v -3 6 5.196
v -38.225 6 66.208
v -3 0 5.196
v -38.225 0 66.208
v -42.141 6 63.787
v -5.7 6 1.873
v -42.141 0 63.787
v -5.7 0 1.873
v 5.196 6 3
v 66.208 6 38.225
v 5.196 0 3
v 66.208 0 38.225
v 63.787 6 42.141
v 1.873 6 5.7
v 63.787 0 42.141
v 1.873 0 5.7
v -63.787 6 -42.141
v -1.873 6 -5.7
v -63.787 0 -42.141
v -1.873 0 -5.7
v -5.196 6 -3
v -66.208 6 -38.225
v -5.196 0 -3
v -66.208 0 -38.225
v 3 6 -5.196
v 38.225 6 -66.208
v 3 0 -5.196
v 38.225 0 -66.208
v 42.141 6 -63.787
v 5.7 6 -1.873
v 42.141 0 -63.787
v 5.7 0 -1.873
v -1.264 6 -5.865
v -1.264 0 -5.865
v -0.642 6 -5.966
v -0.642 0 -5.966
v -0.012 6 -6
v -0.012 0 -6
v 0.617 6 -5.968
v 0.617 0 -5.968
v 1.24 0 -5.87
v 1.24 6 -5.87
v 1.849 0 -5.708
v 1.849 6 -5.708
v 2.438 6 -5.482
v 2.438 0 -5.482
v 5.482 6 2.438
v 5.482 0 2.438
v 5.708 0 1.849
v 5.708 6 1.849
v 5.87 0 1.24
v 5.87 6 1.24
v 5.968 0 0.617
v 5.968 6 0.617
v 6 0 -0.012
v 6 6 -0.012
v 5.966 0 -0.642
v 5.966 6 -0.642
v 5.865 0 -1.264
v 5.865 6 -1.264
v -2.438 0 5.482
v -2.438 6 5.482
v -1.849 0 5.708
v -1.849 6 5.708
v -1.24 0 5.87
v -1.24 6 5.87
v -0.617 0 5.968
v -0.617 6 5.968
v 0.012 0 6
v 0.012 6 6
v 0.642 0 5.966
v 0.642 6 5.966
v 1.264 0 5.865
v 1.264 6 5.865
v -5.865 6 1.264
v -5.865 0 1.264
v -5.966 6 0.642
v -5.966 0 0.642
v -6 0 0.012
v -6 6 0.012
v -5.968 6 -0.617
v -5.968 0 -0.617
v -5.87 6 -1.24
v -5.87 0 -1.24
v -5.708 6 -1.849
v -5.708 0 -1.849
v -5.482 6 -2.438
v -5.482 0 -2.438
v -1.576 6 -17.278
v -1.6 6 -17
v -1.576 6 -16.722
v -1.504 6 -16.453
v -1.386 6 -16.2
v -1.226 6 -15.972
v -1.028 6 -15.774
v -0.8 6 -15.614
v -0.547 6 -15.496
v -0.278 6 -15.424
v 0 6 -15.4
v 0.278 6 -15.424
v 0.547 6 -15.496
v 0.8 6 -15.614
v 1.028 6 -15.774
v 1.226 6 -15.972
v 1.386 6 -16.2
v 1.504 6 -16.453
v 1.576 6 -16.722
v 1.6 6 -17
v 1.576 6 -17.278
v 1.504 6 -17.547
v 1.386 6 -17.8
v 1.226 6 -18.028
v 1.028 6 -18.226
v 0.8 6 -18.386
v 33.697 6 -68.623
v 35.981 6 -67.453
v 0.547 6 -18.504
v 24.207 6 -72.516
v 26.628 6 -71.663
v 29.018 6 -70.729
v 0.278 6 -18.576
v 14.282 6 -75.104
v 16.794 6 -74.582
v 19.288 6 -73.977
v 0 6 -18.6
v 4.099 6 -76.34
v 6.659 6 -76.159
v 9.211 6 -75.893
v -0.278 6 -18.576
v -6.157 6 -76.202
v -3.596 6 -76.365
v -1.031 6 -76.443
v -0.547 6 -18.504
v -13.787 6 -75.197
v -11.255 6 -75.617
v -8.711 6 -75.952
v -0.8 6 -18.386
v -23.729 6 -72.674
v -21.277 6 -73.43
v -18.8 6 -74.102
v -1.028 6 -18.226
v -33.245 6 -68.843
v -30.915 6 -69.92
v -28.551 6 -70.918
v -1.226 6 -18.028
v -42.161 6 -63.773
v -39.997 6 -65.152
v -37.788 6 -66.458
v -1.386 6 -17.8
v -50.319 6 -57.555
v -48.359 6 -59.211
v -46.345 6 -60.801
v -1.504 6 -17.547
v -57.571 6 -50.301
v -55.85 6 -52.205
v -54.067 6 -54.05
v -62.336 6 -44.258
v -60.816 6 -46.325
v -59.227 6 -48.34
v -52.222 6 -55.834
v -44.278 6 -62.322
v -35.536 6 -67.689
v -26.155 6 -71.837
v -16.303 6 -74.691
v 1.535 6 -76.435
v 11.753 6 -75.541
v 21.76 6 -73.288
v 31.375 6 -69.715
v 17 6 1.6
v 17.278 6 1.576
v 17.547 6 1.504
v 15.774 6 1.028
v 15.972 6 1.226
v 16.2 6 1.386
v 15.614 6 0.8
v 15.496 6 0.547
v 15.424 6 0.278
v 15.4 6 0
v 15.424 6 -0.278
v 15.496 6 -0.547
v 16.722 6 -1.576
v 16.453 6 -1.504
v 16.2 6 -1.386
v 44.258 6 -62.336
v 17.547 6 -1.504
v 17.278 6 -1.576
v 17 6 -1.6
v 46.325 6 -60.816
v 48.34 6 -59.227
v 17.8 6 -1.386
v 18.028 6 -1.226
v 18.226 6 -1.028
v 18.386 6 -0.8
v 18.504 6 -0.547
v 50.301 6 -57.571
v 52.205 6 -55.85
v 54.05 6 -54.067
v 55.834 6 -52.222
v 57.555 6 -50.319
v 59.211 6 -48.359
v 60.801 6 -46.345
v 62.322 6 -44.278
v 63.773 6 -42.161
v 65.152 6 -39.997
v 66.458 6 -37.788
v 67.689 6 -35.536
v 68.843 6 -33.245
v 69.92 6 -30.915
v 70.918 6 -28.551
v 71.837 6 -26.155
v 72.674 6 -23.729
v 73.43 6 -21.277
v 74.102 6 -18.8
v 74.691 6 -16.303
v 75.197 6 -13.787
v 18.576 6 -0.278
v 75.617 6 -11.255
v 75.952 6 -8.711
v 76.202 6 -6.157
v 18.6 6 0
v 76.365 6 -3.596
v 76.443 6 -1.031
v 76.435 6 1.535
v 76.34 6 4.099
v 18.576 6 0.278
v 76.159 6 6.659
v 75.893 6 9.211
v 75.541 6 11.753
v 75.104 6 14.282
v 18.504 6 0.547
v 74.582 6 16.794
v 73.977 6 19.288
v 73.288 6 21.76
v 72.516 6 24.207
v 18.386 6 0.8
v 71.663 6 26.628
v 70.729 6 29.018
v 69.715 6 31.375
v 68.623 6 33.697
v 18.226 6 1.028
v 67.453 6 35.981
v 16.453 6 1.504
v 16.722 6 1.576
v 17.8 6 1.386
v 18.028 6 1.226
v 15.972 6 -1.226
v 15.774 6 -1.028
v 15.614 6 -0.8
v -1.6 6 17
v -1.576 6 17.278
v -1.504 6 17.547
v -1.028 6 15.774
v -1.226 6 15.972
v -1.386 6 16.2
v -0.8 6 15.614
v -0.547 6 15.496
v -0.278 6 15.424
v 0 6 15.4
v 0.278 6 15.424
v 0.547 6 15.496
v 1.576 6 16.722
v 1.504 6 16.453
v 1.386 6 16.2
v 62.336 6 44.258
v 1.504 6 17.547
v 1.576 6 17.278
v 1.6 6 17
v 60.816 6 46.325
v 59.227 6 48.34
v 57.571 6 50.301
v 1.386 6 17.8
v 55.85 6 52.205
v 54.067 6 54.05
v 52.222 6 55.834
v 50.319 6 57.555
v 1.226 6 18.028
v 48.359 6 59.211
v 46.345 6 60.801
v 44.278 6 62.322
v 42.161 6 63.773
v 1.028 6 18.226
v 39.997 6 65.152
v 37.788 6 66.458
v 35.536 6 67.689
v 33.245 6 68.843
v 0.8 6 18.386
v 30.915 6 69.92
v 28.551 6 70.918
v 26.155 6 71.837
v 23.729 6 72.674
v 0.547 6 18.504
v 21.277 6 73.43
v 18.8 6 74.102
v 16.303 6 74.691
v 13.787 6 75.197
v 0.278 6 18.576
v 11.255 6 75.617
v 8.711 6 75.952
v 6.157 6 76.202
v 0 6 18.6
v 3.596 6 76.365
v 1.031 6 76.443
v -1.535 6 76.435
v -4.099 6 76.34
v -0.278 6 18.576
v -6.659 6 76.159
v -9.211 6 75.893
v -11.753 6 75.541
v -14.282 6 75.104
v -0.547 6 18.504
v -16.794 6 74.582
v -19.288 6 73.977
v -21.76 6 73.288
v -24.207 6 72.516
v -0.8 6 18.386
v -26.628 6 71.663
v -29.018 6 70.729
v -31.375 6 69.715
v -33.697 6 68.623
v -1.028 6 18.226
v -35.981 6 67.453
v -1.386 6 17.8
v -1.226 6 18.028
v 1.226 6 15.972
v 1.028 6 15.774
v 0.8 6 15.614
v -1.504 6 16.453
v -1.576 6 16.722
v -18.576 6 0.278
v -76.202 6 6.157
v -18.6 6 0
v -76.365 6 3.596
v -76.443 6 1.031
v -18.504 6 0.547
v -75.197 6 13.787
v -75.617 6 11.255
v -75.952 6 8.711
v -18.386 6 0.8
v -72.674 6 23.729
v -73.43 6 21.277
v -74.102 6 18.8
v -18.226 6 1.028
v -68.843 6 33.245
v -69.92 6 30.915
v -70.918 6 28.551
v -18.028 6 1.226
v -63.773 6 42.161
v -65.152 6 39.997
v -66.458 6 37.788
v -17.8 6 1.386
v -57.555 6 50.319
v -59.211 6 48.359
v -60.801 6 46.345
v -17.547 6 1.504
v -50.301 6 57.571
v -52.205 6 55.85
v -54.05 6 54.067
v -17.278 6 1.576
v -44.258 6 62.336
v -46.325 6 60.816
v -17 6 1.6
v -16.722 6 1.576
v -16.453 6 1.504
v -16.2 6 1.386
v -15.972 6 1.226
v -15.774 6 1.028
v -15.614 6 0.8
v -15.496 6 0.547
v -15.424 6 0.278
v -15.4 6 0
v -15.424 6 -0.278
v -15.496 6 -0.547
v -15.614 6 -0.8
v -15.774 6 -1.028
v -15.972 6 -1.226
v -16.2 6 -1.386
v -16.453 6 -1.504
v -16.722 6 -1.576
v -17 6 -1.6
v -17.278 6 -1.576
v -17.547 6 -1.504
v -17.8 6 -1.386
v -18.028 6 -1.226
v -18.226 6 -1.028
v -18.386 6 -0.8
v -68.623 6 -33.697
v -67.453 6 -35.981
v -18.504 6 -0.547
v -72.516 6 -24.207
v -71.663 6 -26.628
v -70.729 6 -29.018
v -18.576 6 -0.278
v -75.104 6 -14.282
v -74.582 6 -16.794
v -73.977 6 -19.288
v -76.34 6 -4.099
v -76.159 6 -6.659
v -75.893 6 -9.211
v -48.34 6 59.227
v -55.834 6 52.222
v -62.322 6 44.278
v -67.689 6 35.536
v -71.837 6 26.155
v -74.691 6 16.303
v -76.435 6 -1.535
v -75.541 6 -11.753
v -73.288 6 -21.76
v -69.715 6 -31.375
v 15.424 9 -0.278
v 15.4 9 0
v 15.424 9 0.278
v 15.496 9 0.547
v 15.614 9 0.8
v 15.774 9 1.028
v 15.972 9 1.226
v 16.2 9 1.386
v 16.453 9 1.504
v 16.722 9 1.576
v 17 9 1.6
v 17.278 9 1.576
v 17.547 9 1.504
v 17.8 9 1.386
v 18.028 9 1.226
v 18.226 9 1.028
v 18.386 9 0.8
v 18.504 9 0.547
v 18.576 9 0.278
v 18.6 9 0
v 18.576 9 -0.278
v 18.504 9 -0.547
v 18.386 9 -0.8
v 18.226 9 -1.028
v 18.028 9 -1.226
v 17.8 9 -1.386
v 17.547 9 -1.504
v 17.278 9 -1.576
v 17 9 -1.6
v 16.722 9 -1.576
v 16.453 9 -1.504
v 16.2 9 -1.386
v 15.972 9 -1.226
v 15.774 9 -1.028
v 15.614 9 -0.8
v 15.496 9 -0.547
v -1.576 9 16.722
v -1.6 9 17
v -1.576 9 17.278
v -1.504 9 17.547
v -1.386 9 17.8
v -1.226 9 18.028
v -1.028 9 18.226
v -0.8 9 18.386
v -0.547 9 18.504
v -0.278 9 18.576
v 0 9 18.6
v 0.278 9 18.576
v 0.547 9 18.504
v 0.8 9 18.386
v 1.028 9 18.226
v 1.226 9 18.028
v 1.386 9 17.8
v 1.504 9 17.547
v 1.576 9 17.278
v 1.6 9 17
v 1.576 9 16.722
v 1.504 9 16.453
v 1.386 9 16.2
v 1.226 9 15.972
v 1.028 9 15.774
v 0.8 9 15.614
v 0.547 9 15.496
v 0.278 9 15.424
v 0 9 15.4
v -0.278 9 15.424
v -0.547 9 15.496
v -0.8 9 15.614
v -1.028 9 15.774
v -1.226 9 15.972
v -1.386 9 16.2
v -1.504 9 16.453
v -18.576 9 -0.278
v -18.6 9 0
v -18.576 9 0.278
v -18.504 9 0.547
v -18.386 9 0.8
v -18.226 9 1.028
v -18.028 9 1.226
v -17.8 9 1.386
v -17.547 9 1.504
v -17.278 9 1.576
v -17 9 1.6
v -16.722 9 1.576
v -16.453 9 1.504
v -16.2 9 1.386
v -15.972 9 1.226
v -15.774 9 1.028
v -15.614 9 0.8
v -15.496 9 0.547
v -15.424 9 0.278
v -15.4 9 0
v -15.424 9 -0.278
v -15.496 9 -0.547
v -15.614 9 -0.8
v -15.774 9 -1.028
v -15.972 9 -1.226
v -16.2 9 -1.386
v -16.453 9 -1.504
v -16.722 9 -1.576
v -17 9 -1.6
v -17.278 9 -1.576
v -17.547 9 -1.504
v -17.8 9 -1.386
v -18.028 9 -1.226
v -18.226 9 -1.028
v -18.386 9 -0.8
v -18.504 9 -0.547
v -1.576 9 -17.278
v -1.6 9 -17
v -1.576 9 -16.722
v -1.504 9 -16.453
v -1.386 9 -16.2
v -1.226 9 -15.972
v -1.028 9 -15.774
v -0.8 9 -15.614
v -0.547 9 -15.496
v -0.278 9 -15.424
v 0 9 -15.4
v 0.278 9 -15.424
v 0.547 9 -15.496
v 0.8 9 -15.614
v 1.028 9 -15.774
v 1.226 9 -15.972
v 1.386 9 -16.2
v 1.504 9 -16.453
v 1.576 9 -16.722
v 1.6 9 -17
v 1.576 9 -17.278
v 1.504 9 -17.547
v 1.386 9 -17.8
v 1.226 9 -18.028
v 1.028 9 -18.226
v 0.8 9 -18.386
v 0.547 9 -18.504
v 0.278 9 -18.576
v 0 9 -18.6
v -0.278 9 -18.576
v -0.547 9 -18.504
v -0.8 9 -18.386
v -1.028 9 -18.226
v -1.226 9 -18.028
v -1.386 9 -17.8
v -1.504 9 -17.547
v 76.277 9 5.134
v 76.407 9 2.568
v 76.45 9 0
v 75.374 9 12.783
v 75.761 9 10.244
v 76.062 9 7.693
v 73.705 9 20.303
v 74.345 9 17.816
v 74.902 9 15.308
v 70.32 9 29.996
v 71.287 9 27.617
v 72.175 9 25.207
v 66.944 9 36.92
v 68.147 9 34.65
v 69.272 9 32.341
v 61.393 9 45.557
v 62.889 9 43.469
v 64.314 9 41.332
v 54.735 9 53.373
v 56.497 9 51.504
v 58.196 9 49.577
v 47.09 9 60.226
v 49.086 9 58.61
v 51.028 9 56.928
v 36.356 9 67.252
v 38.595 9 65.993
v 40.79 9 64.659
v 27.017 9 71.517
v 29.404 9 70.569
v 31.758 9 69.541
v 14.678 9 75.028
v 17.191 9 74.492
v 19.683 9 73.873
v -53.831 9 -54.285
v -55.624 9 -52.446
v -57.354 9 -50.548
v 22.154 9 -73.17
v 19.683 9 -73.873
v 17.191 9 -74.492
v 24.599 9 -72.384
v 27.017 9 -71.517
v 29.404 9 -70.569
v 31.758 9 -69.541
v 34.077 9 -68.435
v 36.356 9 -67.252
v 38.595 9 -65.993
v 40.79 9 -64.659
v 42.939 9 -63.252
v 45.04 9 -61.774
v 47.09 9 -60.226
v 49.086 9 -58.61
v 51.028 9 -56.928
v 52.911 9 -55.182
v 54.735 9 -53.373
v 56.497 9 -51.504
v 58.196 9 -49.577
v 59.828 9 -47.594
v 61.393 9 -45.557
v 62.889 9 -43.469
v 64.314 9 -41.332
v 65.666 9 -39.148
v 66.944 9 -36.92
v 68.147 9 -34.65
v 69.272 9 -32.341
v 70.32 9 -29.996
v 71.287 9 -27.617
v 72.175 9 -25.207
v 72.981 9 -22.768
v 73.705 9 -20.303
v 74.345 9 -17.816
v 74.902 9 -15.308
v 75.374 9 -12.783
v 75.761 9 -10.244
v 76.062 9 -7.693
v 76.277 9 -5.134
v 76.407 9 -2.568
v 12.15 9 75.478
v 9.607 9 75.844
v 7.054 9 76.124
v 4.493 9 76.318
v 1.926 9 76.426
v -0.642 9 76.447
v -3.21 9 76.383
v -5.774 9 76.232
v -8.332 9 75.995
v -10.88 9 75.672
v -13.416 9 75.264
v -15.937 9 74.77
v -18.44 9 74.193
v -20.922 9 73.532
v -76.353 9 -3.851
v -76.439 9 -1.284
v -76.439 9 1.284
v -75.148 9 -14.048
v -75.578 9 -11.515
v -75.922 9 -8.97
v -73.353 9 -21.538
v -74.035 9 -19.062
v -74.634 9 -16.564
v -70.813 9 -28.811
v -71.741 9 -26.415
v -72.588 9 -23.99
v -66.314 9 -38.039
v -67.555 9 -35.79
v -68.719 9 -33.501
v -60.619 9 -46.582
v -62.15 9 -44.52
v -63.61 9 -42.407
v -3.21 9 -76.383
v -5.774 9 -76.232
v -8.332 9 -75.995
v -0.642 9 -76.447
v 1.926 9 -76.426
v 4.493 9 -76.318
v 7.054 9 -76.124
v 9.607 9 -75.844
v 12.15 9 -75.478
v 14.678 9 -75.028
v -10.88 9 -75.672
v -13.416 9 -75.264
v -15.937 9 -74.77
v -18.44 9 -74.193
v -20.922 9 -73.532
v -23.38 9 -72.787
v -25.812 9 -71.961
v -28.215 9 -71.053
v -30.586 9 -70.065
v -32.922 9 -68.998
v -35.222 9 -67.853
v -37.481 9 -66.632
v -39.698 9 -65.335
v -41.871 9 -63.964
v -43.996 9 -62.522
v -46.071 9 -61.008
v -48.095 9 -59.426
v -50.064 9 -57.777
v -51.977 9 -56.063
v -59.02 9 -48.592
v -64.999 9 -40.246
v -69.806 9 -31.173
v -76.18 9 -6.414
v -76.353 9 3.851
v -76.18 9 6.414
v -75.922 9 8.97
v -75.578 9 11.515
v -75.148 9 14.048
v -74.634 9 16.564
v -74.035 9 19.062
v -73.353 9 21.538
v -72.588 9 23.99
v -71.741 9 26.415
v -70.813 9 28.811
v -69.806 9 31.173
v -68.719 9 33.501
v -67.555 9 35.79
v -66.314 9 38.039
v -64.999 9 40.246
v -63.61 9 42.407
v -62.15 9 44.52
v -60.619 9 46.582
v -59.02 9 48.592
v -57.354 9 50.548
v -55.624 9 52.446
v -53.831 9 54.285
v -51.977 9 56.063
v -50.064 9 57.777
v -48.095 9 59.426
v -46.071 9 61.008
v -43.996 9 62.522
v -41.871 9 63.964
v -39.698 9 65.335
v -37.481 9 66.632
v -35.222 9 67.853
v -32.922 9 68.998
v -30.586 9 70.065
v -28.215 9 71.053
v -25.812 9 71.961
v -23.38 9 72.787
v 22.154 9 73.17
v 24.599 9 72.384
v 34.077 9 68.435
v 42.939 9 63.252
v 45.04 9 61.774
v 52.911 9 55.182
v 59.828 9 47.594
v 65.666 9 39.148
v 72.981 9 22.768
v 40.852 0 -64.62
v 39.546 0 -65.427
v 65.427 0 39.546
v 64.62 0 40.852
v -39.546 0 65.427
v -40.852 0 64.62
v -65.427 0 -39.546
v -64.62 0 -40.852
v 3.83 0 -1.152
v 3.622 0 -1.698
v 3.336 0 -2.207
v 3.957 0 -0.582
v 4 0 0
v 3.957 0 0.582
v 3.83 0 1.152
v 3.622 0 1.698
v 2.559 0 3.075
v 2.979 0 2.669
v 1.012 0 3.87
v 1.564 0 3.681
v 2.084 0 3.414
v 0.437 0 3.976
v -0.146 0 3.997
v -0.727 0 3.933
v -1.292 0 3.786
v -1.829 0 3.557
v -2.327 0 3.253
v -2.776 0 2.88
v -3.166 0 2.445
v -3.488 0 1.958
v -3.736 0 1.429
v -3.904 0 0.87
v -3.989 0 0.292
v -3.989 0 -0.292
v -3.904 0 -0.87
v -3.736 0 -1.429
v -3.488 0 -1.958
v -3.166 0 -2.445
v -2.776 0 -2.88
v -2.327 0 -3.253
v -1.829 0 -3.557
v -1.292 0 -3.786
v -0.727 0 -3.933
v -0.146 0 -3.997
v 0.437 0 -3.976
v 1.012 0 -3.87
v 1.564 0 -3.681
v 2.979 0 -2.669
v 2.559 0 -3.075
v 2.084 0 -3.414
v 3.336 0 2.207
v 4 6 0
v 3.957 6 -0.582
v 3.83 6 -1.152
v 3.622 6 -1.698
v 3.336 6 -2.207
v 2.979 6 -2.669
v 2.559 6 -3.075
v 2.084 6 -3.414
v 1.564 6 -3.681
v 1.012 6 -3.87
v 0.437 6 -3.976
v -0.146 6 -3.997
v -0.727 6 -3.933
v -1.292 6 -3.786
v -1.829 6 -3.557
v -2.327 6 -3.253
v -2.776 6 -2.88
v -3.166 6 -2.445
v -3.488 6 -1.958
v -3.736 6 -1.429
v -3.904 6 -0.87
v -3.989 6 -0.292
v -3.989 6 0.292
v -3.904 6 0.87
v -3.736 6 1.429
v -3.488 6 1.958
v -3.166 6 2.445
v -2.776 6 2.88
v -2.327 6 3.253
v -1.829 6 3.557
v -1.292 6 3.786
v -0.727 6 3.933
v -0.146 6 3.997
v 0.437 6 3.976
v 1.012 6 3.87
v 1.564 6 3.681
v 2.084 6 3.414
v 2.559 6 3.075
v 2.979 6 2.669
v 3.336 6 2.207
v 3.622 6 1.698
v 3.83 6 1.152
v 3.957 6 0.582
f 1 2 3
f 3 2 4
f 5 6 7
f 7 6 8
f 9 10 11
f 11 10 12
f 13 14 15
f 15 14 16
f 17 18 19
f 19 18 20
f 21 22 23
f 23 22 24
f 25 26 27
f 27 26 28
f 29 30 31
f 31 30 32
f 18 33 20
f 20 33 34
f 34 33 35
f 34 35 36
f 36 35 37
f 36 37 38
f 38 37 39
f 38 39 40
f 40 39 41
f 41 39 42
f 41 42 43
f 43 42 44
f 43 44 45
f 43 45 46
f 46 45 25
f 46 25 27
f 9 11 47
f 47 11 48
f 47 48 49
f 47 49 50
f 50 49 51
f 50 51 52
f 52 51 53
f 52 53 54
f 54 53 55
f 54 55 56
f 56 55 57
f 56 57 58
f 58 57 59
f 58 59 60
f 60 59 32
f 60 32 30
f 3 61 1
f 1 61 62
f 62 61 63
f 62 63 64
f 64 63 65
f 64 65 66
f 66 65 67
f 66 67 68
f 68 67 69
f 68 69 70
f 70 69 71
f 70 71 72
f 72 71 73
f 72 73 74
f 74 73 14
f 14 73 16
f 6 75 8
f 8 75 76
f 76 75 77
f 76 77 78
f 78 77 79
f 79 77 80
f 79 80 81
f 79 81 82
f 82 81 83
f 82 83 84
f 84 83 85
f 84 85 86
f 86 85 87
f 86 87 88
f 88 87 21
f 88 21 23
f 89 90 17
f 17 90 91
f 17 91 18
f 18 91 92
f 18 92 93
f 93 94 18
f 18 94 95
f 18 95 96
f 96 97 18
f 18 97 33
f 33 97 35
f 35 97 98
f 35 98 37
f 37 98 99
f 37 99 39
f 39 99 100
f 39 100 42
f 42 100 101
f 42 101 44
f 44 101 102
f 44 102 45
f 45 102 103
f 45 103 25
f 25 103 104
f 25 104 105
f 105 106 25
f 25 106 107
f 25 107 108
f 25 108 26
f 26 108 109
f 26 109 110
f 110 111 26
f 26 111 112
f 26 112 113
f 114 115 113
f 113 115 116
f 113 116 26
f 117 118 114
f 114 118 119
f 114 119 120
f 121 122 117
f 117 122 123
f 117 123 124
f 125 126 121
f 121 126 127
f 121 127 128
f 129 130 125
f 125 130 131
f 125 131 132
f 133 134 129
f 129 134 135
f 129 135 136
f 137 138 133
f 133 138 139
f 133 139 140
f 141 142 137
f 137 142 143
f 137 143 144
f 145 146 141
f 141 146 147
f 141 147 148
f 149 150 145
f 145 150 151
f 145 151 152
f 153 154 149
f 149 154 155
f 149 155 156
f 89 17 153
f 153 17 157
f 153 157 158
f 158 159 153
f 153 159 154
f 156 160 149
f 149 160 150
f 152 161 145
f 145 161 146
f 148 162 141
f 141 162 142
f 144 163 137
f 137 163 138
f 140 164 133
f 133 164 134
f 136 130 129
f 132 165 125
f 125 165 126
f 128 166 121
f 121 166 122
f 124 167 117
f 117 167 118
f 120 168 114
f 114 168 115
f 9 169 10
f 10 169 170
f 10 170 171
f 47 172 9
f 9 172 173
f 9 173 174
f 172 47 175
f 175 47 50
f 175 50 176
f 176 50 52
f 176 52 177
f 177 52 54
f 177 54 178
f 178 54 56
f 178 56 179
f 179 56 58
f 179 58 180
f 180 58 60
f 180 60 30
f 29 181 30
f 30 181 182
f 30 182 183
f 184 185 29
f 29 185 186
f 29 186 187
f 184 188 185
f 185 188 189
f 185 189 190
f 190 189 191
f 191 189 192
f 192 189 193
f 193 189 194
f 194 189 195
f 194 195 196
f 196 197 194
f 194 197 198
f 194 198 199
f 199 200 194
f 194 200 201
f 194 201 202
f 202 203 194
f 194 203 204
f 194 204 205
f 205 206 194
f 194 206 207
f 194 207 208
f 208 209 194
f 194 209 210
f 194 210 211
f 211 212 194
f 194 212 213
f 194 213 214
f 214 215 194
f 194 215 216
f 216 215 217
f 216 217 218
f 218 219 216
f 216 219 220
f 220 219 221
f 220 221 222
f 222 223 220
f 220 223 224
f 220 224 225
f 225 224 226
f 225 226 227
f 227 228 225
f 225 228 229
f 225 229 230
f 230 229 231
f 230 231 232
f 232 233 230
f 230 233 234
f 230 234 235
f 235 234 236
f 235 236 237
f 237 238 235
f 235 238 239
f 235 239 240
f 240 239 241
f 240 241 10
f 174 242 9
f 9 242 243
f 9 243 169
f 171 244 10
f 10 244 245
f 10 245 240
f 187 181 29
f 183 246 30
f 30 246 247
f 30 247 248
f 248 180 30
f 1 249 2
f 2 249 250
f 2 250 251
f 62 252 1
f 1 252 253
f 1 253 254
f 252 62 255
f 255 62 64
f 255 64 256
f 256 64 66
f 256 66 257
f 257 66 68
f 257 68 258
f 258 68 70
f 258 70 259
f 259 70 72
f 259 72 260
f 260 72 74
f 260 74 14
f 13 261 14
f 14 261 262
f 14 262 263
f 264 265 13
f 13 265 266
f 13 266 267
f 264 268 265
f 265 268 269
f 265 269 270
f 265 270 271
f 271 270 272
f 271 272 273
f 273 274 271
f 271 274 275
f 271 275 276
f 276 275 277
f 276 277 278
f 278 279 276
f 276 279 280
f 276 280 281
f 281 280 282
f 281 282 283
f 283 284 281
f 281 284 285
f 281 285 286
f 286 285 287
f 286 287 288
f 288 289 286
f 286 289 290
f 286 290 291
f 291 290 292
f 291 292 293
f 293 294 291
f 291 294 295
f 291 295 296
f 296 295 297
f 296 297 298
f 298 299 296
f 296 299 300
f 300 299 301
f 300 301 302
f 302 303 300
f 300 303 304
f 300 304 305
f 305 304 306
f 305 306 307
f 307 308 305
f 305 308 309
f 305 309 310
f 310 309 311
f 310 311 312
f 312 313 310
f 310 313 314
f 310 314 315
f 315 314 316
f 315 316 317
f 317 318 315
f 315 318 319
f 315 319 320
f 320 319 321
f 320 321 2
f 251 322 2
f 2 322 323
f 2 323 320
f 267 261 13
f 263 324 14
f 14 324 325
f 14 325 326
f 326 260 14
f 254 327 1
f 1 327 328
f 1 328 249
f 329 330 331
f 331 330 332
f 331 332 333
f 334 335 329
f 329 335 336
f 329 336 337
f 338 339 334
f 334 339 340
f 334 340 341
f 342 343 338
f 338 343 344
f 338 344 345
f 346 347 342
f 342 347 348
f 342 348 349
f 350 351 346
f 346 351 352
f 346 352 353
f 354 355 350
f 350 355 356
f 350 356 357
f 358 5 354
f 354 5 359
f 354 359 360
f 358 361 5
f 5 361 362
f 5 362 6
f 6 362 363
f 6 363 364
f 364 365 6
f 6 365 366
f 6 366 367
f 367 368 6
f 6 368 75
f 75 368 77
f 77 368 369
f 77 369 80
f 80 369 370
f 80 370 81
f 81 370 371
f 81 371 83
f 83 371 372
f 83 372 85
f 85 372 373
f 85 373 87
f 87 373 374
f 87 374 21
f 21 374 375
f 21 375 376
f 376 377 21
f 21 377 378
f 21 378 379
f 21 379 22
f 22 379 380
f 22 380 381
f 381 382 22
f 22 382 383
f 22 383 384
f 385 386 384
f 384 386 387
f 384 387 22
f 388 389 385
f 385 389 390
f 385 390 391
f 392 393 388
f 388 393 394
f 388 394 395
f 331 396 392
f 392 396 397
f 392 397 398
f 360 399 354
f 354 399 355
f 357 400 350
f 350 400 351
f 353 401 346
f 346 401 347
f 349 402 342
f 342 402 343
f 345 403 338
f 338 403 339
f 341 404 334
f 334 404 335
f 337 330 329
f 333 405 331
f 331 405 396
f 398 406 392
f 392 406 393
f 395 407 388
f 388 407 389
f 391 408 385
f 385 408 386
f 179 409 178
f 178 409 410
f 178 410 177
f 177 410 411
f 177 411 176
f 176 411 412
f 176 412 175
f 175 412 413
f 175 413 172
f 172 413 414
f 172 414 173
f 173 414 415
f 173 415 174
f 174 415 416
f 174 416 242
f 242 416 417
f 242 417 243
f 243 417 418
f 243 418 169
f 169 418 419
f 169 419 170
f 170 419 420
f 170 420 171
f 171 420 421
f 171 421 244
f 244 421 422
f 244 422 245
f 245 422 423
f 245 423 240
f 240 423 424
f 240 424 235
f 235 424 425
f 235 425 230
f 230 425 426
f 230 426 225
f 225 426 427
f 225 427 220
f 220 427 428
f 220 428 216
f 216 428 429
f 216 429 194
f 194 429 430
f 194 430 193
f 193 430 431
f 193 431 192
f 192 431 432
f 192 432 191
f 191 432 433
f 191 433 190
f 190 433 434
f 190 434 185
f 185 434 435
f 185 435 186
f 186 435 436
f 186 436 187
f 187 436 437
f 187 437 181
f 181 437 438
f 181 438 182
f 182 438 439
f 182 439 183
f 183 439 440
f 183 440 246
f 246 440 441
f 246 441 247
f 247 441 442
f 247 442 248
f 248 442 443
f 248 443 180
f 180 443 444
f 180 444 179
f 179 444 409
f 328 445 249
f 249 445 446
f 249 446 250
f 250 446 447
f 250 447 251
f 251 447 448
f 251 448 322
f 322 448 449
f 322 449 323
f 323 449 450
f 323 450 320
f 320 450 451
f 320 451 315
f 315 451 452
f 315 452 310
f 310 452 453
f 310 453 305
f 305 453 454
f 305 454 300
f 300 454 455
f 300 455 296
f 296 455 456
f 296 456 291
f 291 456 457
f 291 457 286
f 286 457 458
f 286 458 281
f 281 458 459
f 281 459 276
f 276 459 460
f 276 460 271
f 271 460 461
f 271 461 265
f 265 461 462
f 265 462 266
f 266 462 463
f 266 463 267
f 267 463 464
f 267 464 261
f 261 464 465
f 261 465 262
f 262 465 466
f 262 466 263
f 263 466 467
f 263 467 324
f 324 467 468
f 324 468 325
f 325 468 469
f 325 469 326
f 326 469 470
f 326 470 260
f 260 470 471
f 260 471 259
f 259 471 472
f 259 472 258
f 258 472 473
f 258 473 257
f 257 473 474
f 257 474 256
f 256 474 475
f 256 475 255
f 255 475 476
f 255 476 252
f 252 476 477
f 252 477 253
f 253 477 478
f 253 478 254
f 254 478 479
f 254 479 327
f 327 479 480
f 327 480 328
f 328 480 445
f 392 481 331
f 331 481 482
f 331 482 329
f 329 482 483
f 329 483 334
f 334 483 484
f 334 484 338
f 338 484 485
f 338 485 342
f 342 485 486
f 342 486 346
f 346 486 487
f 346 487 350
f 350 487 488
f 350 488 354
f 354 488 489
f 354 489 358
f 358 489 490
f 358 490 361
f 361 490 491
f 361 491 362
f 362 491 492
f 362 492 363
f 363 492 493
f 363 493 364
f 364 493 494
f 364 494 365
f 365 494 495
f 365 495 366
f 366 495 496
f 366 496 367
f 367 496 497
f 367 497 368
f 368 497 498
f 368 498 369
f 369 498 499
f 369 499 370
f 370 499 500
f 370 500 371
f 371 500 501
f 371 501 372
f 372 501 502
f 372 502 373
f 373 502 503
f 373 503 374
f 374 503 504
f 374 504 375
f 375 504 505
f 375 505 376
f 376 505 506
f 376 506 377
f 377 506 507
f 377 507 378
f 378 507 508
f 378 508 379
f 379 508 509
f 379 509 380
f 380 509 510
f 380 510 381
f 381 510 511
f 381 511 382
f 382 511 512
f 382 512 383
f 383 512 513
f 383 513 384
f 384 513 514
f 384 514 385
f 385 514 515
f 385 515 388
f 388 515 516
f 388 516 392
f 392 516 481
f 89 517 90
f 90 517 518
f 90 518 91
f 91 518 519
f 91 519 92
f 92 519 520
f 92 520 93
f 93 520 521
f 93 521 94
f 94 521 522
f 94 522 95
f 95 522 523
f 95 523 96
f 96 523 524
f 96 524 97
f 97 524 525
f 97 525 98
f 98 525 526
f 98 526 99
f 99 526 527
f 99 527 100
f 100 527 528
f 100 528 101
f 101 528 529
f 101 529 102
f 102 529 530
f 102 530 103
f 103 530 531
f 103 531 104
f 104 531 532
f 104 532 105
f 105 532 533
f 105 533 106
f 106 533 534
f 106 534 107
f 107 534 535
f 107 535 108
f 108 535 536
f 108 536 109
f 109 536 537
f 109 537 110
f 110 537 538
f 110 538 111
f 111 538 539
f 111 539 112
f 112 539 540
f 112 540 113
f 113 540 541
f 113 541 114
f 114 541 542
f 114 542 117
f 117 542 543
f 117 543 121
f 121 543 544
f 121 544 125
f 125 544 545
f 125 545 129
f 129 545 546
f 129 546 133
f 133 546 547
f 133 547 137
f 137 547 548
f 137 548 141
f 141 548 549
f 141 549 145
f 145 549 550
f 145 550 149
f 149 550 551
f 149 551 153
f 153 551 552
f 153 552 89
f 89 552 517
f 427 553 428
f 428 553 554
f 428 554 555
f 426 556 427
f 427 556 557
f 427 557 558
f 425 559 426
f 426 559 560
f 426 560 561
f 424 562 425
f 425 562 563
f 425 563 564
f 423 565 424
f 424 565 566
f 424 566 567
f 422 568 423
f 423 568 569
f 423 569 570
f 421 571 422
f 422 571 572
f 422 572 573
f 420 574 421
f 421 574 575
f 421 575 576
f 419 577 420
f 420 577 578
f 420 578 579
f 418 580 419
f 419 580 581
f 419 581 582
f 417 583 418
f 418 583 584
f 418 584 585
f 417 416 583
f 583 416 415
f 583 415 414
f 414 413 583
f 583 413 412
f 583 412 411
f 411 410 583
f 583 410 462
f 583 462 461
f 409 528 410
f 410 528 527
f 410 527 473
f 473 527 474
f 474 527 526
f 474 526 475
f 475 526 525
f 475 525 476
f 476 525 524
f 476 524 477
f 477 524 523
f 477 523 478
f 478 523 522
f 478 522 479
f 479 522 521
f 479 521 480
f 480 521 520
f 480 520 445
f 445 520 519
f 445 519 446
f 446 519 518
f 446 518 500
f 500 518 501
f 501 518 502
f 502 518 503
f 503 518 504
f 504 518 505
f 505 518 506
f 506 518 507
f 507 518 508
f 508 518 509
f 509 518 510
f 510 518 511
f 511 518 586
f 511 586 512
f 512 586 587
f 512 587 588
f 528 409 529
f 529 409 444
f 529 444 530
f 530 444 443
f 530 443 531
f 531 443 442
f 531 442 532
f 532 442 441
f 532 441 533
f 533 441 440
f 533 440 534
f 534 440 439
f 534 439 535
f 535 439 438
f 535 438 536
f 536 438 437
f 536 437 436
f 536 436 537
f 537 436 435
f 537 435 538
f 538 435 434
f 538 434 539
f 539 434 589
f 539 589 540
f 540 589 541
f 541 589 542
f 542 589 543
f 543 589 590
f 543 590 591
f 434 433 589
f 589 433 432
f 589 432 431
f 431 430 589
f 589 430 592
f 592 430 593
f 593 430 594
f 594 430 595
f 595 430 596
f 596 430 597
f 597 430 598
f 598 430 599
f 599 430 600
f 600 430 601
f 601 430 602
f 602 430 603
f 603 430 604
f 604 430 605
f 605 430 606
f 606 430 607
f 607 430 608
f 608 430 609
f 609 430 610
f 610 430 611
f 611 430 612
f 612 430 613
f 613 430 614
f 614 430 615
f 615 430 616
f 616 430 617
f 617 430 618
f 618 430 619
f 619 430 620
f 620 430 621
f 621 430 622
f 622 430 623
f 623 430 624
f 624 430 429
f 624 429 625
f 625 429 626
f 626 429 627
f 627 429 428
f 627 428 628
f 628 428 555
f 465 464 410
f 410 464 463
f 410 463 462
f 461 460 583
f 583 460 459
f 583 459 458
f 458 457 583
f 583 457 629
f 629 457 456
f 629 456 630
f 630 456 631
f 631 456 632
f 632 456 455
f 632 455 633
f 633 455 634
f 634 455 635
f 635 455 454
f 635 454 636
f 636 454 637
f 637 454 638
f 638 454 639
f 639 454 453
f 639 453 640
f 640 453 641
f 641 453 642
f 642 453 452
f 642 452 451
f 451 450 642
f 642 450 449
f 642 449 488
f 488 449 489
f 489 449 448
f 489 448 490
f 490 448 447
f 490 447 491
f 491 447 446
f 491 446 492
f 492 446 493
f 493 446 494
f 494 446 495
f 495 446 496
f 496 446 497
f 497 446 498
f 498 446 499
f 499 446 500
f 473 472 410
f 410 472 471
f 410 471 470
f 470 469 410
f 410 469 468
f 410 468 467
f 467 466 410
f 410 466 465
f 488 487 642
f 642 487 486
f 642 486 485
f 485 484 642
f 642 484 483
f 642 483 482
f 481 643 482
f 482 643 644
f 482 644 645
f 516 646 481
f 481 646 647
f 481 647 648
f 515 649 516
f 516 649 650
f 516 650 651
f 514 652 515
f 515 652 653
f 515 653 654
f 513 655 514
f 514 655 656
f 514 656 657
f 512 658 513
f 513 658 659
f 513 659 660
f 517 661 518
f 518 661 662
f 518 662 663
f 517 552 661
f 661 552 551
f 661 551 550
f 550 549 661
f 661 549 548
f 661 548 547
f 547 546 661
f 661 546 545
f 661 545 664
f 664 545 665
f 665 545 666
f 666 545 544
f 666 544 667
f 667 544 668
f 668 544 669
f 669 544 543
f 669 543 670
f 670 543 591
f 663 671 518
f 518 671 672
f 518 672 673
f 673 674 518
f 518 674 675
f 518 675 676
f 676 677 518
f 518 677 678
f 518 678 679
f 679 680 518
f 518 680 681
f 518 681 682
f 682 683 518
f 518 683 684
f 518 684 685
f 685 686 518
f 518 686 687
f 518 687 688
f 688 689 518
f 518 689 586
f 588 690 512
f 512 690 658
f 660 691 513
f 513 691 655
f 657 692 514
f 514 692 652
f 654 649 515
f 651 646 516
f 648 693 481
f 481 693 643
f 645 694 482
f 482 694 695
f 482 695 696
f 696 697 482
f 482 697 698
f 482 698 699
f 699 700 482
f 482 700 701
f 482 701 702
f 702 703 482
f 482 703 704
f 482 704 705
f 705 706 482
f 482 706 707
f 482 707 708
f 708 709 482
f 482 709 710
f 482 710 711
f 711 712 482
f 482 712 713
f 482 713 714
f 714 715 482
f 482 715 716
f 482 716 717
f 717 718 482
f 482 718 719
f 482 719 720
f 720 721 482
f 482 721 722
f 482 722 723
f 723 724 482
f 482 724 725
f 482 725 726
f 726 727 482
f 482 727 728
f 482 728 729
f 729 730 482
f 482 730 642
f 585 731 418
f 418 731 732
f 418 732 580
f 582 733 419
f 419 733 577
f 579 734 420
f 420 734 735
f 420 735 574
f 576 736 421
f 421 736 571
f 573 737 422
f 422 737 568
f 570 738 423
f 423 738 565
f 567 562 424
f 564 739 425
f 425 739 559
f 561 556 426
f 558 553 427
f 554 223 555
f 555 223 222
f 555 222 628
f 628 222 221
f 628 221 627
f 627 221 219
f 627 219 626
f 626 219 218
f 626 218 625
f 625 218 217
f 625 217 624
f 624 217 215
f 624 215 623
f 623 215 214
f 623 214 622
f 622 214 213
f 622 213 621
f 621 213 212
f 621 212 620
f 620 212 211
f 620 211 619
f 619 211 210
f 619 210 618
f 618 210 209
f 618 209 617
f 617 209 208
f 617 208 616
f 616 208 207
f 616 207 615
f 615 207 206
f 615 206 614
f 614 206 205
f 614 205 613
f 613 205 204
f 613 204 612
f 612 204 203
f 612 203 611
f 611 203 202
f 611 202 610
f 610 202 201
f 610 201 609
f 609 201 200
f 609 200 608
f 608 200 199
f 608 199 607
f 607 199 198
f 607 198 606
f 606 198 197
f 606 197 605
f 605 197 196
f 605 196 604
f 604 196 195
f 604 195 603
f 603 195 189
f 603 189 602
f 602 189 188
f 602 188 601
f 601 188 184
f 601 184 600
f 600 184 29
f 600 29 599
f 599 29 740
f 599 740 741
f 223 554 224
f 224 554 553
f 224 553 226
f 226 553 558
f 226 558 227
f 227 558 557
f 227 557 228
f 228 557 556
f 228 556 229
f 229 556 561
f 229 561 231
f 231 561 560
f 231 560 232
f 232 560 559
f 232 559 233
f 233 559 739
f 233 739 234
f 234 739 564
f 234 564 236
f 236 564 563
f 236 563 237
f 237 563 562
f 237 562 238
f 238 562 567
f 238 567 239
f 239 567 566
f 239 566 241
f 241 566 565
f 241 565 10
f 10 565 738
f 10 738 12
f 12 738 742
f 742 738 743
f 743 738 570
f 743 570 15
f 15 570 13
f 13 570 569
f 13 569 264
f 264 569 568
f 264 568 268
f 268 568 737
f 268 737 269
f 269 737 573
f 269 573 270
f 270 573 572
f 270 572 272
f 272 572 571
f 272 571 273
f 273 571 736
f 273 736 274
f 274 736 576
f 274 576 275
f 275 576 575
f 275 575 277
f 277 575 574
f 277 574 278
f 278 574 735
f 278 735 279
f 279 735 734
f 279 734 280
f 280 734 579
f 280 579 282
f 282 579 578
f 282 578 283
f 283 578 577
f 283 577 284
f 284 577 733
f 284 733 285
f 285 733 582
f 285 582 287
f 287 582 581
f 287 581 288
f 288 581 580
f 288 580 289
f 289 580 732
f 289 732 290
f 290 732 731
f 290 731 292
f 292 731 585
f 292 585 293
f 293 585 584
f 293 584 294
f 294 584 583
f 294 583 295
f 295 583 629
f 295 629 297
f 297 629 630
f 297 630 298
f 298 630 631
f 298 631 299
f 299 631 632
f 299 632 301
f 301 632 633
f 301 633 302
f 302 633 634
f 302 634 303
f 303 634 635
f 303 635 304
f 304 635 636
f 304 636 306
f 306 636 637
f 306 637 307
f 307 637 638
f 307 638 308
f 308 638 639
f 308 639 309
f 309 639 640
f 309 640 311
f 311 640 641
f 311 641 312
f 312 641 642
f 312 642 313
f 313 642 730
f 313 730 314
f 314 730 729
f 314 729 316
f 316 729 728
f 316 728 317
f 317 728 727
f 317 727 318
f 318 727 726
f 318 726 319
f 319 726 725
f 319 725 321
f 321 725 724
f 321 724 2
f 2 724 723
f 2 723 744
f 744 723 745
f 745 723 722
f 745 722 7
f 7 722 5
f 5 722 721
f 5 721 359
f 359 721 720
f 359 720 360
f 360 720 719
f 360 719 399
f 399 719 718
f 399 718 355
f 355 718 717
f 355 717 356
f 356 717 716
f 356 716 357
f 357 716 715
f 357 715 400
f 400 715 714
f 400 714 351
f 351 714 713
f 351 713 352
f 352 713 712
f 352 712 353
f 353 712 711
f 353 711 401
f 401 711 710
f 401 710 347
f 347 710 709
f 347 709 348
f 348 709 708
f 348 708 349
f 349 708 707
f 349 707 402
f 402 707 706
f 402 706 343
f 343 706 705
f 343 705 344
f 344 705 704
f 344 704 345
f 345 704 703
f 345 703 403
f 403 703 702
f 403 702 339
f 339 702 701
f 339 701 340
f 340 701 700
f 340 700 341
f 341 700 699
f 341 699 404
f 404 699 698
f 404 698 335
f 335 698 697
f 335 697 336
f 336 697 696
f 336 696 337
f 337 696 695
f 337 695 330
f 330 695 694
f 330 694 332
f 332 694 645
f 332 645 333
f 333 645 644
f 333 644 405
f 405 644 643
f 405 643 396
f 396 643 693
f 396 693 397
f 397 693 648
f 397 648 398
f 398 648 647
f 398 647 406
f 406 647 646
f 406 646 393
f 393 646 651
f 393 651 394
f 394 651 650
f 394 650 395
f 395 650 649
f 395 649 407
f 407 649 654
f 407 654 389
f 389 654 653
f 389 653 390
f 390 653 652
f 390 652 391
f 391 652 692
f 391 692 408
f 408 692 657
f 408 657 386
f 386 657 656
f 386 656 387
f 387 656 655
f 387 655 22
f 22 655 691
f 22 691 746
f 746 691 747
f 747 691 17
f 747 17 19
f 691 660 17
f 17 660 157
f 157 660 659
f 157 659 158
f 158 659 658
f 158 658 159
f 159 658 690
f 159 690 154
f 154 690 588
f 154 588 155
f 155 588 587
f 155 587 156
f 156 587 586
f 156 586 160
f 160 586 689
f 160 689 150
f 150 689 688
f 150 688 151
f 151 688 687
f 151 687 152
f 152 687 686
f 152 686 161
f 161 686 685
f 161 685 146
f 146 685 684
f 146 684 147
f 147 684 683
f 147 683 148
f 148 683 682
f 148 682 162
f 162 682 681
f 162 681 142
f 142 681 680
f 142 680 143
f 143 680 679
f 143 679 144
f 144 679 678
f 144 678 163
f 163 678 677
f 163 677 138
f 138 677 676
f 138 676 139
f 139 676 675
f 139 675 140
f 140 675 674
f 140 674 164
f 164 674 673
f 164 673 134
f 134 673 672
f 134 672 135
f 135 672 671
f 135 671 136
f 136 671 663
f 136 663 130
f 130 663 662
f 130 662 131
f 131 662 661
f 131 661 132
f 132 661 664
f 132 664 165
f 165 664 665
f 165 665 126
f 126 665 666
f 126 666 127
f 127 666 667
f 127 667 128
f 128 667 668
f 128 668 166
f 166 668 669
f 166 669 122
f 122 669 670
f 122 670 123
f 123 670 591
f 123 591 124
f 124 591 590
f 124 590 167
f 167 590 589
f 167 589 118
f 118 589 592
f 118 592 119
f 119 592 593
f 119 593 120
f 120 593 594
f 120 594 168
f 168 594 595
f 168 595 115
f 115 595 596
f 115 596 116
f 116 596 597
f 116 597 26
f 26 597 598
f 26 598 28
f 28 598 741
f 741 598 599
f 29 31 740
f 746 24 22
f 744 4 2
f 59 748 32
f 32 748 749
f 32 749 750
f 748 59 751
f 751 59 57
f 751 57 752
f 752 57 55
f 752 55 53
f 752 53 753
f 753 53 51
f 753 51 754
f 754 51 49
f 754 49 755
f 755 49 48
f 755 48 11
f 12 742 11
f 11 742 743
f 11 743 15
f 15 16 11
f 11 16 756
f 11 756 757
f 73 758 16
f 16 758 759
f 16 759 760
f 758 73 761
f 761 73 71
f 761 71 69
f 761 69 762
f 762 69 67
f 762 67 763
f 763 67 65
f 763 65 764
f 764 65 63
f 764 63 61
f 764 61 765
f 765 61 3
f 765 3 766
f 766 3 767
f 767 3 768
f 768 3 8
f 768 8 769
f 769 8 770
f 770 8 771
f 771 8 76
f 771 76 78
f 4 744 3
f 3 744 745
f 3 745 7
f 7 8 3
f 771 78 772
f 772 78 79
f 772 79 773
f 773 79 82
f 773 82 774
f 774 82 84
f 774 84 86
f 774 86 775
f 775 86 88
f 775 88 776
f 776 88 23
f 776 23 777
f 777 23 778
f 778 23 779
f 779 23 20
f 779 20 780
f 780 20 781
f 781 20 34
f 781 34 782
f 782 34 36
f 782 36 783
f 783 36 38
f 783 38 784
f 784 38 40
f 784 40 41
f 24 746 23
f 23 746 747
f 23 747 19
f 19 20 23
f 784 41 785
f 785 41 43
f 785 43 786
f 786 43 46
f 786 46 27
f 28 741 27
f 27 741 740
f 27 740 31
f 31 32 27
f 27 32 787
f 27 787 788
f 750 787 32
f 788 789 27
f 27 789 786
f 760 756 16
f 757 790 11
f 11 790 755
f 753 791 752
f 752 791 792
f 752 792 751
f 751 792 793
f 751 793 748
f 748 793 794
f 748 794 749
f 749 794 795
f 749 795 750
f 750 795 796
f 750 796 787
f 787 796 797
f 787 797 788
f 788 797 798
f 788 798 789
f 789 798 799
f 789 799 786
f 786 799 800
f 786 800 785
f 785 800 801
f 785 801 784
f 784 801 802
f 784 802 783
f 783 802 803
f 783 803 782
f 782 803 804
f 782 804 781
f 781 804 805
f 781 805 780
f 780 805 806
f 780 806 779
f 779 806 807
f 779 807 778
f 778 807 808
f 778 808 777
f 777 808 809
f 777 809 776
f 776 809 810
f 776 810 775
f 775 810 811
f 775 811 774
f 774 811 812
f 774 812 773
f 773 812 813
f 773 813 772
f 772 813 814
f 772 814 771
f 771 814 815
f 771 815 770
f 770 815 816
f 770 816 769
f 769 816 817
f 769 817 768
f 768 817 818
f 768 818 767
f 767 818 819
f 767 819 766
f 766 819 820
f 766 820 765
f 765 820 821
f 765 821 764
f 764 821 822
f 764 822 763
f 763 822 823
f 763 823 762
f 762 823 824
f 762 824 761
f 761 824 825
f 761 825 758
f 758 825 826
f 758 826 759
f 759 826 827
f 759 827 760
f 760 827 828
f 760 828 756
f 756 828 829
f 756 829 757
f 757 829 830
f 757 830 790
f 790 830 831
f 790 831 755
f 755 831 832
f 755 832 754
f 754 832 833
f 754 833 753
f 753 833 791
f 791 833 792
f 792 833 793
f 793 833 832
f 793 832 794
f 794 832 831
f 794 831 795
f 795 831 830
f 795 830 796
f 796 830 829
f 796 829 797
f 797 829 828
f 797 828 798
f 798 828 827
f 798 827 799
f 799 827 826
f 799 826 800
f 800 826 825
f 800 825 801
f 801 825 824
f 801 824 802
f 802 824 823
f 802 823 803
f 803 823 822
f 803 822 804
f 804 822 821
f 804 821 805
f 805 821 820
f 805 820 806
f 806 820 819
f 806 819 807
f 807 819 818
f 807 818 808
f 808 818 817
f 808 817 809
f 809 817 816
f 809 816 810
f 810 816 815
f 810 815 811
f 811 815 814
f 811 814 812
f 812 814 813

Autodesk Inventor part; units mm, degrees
ref_plane "YZ Plane" through (0, 0, 0) normal (1, 0, 0) x (0, 1, 0)
ref_plane "XZ Plane" through (0, 0, 0) normal (0, 1, 0) x (-1, 0, 0)
ref_plane "XY Plane" through (0, 0, 0) normal (0, 0, 1) x (1, 0, 0)
sketch "Sketch1" plane through (0, 0, 0) normal (0, 0, 1) x (1, 0, 0)
  line L0 (4, 0) -> (6, 0)
  line L1 (6, 0) -> (6, 6)
  line L2 (6, 6) -> (76.45, 6)
  line L3 (76.45, 6) -> (76.45, 9)
  line L4 (4, 6) -> (4, 0)
  line L5 (0, 9) -> (0, 6)
  line L6 (0, 6) -> (4, 6)
  line L7 (0, 9) -> (13.95, 9)
  line L8 (13.95, 9) -> (13.95, 9)
  line L9 (13.95, 9) -> (16.45, 9)
  line L10 (16.45, 9) -> (16.45, 9)
  line L11 (16.45, 9) -> (76.45, 9)
  point P0 (0, 0)
  dimension "d0" = 4
  dimension "d1" = 6
  dimension "d2" = 0
  dimension "d3" = 3
  dimension "d4" = 2
  dimension "d7" = 2.5
  dimension "d8" = 60
  dimension "d9" = 13.95
  dimension "d10" = 0
revolve "Revolution1" add sketch "Sketch1" angle 360 about axis through (0, 9, 0) along (0, -1, 0)
thread "Thread1" size "M8x1.25" class "6H" standard "ANSI Metric M Profile" full length
sketch "Sketch2" plane through (0, 9, 0) normal (0, 1, 0) x (1, 0, 0)
  circle A0 centre (17, 0) radius 1.6
  circle A1 centre (-17, 0) radius 1.6
  circle A2 centre (0, 17) radius 1.6
  circle A3 centre (0, -17) radius 1.6
  point P0 (0, 0)
  dimension "d14" = 3.2
  dimension "d15" = 3.2
  dimension "d16" = 3.2
  dimension "d17" = 3.2
  dimension "d18" = 34
  dimension "d19" = 17
  dimension "d20" = 34
  dimension "d21" = 17
extrude "Extrusion1" cut sketch "Sketch2" against normal through all
sketch "Sketch5" plane through (0, 6, 0) normal (0, -1, 0) x (1, 0, 0)
  circle A0 centre (0, 0) radius 76.45 projected
  circle A1 centre (0, 0) radius 6 projected
  circle A2 centre (0, 0) radius 4 projected
  line L0 (-5.1962, -3) -> (-66.2076, -38.225)
  line L1 (-63.7866, -42.1411) -> (-1.873, -5.7002)
  line L2 (42.1411, -63.7866) -> (5.7002, -1.873)
  line L3 (3, -5.1962) -> (38.225, -66.2076)
  line L4 (63.7866, 42.1411) -> (1.873, 5.7002)
  line L5 (5.1962, 3) -> (66.2076, 38.225)
  line L6 (-42.1411, 63.7866) -> (-5.7002, 1.873)
  line L7 (-3, 5.1962) -> (-38.225, 66.2076)
  arc A3 (38.225, -66.2076) -> (42.1411, -63.7866) centre (0, 0) ccw
  arc A4 (66.2076, 38.225) -> (63.7866, 42.1411) centre (0, 0) ccw
  arc A5 (-38.225, 66.2076) -> (-42.1411, 63.7866) centre (0, 0) ccw
  arc A6 (-66.2076, -38.225) -> (-63.7866, -42.1411) centre (0, 0) ccw
  arc A7 (-5.1962, -3) -> (-1.873, -5.7002) centre (0, 0) ccw
  arc A8 (-3, 5.1962) -> (-5.7002, 1.873) centre (0, 0) ccw
  arc A9 (3, -5.1962) -> (5.7002, -1.873) centre (0, 0) ccw
  arc A10 (5.1962, 3) -> (1.873, 5.7002) centre (0, 0) ccw
  point P0 (0, 0)
  point P1 (-38.225, 66.2076)
  point P2 (-42.1411, 63.7866)
  point P3 (-5.7002, 1.873)
  point P4 (5.1962, 3)
  point P5 (66.2076, 38.225)
  point P6 (63.7866, 42.1411)
  point P7 (1.873, 5.7002)
  point P8 (38.225, -66.2076)
  point P9 (42.1411, -63.7866)
  point P10 (5.7002, -1.873)
  dimension "d35" = 360
extrude "Extrusion3" add sketch "Sketch5" along normal blind 6 contours L5 A1 L4 A0 | A0 L3 A1 L2 | L7 A1 L6 A0 | A0 L0 A1 L1
properties part number "motor platform reaction wheel" material "ABS Plastic"
